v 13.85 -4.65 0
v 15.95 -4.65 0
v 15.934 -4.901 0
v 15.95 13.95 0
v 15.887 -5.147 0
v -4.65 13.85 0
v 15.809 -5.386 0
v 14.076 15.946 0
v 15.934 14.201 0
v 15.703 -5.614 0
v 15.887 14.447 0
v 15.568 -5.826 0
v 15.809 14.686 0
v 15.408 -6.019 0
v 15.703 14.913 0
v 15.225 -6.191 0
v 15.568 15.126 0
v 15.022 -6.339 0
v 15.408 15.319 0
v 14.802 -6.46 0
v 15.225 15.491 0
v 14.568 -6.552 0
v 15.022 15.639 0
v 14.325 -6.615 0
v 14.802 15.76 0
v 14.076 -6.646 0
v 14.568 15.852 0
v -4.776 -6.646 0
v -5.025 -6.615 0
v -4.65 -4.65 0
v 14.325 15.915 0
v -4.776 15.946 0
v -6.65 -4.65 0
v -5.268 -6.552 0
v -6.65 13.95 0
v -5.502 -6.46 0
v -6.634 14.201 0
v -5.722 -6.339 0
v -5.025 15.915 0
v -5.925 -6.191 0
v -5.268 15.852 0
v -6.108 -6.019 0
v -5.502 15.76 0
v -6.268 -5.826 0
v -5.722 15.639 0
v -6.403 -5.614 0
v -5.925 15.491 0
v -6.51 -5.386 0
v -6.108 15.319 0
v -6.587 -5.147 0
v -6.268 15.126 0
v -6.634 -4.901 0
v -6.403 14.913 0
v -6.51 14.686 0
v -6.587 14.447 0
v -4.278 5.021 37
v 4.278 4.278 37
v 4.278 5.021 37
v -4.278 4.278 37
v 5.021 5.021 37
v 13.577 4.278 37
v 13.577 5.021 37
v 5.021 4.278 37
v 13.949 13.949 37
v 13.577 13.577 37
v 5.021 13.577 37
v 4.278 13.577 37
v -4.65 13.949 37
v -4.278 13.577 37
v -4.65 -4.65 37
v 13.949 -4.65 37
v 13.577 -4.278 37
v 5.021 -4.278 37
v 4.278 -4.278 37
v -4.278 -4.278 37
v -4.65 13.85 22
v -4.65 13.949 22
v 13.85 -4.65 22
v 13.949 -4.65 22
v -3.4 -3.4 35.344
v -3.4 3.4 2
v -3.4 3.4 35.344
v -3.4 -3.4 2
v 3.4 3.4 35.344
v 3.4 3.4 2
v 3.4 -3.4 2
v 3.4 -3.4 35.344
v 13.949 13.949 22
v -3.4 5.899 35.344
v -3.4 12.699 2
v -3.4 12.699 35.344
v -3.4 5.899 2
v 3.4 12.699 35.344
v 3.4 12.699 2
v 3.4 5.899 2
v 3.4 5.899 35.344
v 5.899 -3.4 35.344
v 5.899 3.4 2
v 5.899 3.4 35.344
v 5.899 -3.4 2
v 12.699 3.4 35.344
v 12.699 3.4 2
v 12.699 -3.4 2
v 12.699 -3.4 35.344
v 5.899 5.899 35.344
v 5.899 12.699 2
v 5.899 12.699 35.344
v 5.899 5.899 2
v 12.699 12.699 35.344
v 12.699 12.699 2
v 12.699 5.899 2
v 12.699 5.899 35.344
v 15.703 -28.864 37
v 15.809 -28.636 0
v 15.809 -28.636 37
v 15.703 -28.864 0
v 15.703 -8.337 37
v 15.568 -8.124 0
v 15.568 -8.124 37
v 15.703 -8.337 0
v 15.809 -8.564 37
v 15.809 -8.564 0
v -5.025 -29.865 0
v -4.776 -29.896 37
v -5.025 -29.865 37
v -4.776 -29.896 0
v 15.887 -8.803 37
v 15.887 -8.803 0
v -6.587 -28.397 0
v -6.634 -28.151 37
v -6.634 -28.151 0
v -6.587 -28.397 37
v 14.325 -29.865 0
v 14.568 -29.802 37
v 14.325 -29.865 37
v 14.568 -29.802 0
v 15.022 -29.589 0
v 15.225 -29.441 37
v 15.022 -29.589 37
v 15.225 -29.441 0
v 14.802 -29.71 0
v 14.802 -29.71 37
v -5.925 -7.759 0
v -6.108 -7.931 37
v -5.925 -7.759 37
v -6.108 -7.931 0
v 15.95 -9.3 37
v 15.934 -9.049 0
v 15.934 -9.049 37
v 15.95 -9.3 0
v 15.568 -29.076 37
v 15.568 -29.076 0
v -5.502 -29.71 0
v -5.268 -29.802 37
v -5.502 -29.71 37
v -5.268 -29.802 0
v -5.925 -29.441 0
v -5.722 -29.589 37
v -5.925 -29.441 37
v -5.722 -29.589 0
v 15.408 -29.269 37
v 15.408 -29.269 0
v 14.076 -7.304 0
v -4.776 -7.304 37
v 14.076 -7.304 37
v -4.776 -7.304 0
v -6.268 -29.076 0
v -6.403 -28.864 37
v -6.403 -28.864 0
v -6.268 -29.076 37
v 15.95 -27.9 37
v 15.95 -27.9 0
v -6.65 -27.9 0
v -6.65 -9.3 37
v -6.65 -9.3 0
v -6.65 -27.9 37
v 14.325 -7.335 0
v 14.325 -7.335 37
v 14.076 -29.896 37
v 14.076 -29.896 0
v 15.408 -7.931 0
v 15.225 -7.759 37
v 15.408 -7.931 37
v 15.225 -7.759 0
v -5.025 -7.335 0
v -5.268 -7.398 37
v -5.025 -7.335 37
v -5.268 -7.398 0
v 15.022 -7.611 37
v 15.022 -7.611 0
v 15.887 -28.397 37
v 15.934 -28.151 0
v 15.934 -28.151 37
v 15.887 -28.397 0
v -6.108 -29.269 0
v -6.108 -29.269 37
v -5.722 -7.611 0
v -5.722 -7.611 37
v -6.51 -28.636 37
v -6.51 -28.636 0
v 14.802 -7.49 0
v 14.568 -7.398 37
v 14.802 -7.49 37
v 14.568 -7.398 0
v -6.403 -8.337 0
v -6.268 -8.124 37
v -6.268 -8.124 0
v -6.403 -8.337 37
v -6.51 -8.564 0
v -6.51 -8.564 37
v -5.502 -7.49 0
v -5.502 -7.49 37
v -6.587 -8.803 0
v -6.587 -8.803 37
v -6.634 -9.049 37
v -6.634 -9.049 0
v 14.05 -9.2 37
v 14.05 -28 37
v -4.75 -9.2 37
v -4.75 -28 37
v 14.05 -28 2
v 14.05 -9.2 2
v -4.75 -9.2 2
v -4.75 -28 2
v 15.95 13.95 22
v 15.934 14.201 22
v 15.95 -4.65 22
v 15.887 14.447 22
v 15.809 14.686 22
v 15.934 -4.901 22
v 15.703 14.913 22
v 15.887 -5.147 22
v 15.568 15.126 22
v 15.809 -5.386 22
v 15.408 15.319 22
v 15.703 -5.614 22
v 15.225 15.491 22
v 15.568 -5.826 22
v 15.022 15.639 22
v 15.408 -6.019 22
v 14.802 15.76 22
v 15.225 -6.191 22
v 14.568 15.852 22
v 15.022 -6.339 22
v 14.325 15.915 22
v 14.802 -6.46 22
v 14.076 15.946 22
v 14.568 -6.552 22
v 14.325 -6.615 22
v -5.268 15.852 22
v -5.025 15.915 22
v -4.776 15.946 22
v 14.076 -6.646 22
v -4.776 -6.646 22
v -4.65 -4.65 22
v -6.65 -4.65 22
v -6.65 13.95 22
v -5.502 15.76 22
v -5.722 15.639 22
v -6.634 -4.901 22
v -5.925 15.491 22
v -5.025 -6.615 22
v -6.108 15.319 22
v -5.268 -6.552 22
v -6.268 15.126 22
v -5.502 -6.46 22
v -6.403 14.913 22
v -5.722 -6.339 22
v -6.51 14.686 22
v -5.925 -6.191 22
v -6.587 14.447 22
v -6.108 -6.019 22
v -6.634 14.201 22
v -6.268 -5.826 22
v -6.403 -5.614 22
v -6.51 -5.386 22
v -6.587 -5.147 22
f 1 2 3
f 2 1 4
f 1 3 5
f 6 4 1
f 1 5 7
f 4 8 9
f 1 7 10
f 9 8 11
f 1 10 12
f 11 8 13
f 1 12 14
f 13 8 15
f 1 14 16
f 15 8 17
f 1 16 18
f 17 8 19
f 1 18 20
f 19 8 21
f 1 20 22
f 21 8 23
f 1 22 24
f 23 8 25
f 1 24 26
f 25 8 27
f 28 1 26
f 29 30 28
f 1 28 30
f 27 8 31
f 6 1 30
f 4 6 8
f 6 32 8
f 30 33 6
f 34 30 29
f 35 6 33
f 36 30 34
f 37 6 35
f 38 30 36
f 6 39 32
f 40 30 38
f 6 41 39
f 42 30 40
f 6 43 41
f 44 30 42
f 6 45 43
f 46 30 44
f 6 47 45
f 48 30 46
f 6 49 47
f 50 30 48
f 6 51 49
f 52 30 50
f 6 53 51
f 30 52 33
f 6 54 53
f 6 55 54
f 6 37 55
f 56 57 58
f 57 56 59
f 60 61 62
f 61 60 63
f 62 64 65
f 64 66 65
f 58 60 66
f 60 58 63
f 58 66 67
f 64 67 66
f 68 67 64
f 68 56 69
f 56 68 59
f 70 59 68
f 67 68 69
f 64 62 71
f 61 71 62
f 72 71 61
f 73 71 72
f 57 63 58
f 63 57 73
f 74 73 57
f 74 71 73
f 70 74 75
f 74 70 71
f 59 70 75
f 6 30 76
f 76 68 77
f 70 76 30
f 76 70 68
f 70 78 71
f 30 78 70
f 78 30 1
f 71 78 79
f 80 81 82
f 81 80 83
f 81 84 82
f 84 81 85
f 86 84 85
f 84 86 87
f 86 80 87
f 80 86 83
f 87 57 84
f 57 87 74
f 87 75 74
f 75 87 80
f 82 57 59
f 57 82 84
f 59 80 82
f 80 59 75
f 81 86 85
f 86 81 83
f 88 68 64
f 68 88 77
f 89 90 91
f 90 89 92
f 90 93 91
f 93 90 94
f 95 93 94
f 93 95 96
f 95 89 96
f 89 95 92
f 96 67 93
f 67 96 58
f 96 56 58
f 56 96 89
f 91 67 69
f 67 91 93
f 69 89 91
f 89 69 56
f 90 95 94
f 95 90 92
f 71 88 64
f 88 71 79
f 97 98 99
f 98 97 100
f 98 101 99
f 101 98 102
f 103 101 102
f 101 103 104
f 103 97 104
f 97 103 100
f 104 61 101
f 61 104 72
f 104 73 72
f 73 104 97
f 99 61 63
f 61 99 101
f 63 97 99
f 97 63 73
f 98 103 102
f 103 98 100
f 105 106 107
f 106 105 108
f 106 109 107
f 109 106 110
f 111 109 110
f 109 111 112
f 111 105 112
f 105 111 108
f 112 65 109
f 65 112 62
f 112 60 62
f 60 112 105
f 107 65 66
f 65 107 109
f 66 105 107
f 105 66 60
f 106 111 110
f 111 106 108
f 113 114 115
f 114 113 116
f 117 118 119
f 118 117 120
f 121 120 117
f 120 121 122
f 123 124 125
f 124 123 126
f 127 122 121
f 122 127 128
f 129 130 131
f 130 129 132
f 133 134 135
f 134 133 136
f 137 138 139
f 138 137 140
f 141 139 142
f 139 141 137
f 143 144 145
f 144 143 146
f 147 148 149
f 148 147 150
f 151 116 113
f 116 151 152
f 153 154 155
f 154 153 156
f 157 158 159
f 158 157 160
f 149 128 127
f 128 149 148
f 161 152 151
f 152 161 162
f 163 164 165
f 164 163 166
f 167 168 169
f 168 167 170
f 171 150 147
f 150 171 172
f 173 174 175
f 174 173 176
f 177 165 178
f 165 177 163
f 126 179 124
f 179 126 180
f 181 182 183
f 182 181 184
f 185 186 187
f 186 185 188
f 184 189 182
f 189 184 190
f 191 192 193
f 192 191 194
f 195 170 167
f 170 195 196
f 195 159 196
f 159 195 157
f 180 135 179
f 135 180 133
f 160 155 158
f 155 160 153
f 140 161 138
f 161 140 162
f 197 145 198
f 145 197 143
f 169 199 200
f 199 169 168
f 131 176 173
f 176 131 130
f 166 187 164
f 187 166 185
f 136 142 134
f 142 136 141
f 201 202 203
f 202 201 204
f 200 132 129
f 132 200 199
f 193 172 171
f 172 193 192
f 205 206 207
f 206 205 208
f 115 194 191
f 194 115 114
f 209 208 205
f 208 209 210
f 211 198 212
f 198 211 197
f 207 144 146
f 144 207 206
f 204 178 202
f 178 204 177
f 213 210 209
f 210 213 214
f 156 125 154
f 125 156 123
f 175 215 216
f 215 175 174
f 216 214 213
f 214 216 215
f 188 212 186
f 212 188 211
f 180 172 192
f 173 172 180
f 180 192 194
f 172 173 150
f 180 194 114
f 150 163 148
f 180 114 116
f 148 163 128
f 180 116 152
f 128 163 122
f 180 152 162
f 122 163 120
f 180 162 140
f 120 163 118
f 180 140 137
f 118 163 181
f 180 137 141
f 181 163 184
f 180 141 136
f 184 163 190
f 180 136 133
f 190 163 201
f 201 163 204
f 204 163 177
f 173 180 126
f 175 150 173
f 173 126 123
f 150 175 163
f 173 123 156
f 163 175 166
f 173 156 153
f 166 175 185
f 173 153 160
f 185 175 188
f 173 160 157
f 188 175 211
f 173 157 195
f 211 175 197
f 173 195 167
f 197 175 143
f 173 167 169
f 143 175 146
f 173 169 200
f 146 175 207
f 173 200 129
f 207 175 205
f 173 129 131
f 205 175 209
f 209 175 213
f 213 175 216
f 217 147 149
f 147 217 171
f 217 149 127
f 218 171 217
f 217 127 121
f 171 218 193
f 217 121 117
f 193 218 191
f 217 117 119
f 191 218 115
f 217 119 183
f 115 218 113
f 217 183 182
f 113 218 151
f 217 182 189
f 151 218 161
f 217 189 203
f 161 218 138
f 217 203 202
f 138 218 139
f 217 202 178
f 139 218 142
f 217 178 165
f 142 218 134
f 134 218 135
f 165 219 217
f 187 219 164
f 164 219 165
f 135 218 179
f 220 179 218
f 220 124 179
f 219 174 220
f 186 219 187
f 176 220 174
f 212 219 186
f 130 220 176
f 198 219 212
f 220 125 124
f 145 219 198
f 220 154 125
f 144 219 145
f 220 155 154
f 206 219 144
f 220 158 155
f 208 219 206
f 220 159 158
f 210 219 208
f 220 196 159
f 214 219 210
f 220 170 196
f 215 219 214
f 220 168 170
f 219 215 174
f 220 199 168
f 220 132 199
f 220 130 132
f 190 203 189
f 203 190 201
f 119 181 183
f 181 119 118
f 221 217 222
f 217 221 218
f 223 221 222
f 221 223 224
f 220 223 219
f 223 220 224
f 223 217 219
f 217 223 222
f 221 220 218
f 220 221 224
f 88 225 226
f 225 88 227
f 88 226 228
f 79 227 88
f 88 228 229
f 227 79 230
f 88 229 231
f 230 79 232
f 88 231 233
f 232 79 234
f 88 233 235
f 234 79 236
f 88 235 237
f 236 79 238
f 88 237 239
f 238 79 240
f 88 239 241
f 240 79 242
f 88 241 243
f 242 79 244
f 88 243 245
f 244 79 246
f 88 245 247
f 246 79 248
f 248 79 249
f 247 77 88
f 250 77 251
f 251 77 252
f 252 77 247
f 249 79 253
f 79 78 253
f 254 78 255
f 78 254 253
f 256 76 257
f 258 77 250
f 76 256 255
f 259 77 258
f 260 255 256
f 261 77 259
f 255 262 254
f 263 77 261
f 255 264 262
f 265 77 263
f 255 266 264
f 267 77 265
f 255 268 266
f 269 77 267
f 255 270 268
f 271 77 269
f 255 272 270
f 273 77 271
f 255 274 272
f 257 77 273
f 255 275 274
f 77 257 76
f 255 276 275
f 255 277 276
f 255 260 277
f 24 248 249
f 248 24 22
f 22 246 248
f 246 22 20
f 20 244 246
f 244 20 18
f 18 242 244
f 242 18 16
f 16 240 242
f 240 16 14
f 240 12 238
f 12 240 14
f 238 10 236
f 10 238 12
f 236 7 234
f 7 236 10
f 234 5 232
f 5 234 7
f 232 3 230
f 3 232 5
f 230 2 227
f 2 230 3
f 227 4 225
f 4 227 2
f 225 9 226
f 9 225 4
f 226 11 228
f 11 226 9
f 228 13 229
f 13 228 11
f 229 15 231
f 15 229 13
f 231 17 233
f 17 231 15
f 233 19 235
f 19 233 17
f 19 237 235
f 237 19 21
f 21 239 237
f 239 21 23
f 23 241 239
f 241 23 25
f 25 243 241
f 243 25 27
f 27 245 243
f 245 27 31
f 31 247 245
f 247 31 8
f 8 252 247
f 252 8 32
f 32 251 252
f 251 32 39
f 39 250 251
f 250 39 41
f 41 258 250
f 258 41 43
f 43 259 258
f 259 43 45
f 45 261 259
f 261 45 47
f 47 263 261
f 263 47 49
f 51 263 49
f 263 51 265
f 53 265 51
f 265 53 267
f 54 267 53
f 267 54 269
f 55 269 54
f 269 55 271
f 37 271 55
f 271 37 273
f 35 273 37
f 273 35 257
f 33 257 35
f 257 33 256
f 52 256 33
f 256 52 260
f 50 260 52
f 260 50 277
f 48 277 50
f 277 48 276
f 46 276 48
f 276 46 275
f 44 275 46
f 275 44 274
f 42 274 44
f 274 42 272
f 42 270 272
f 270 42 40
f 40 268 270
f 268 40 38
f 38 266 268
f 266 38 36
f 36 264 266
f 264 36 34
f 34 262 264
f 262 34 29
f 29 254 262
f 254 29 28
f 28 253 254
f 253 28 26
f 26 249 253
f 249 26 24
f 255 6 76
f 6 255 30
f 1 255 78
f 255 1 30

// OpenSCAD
module _bit_holder(x, y, z, ox, oy, oz) {
     box_dim = (x + y) / 2 ;

     linear_extrude(oz-z) {
	  square([x, y], true);
     };

     difference() {
	  linear_extrude(oz) {
	       difference() {
		    square([ox, oy], true);
		    square([x, y], true);
	       };
	  };
	  translate([0, 0, oz-3]) {
	       rotate([0, 0, 45]) {
		    cylinder(4, box_dim - 3, box_dim, $fn=4);
	       }
	  };
     };
}


module grid(count_x, count_y, spacing) {
     for(col=[0:count_x-1]) {
	  for(row=[0:count_y-1]) {
	       translate([spacing * col, spacing * row]) {
		    children();
	       };
	  };
     };
}


module bit_grid(count_x, count_y, bit_x, bit_y, z, spacing, base) {
     box_dim = (bit_x + bit_y + spacing) / 2;

     // imperceptible overlap to ensure they're a single object
     grid_spacing = box_dim - 0.001;

     grid(count_x, count_y, grid_spacing) {
	  _bit_holder(bit_x, bit_y, z,
		      box_dim, box_dim,
		      z + base);
     };
}


module bit_box(count_x, count_y, bit_x, bit_y, bit_z,
	       bottom_z, top_z,
	       spacing, base) {

     box_dim = (bit_x + bit_y + spacing) / 2;

     bit_grid(count_x, count_y, bit_x, bit_y, bit_z, spacing, base);

     // bottom box
     translate([-box_dim / 2, -box_dim / 2]) {
	  linear_extrude(bottom_z + base) {
	       difference() {
		    minkowski() {
			 circle(2, $fn=50);
			 square([count_x * box_dim, count_y * box_dim]);
		    };

		    // we shrink the subtractive square slightly to
		    // ensure there's overlap with the bit_grid,
		    // preventing them from being treated as separate
		    // objects.
		    square([(count_x * box_dim) - 0.1,
			    (count_y * box_dim) - 0.1]);
	       };
	  };
     };

     lid_slop = 0.2;

     // box lid
     translate([-box_dim / 2, -box_dim * (count_y + 1)]) {
	  difference () {
	       linear_extrude(top_z + base) {
		    minkowski() {
			 circle(2, $fn=50);
			 square([count_x * box_dim, count_y * box_dim]);
		    };
	       };

	       // need some clearance in order to fit smoothly over
	       // the top of the bottom box
	       translate([-lid_slop / 2, -lid_slop / 2, base]) {
		    cube([(count_x * box_dim) + lid_slop,
			  (count_y * box_dim) + lid_slop,
			  top_z + 1]);
	       };
	  };
     };

}


bit_box(2, 2, 6.8, 6.8, 35, 20, 35, 5, 2);
